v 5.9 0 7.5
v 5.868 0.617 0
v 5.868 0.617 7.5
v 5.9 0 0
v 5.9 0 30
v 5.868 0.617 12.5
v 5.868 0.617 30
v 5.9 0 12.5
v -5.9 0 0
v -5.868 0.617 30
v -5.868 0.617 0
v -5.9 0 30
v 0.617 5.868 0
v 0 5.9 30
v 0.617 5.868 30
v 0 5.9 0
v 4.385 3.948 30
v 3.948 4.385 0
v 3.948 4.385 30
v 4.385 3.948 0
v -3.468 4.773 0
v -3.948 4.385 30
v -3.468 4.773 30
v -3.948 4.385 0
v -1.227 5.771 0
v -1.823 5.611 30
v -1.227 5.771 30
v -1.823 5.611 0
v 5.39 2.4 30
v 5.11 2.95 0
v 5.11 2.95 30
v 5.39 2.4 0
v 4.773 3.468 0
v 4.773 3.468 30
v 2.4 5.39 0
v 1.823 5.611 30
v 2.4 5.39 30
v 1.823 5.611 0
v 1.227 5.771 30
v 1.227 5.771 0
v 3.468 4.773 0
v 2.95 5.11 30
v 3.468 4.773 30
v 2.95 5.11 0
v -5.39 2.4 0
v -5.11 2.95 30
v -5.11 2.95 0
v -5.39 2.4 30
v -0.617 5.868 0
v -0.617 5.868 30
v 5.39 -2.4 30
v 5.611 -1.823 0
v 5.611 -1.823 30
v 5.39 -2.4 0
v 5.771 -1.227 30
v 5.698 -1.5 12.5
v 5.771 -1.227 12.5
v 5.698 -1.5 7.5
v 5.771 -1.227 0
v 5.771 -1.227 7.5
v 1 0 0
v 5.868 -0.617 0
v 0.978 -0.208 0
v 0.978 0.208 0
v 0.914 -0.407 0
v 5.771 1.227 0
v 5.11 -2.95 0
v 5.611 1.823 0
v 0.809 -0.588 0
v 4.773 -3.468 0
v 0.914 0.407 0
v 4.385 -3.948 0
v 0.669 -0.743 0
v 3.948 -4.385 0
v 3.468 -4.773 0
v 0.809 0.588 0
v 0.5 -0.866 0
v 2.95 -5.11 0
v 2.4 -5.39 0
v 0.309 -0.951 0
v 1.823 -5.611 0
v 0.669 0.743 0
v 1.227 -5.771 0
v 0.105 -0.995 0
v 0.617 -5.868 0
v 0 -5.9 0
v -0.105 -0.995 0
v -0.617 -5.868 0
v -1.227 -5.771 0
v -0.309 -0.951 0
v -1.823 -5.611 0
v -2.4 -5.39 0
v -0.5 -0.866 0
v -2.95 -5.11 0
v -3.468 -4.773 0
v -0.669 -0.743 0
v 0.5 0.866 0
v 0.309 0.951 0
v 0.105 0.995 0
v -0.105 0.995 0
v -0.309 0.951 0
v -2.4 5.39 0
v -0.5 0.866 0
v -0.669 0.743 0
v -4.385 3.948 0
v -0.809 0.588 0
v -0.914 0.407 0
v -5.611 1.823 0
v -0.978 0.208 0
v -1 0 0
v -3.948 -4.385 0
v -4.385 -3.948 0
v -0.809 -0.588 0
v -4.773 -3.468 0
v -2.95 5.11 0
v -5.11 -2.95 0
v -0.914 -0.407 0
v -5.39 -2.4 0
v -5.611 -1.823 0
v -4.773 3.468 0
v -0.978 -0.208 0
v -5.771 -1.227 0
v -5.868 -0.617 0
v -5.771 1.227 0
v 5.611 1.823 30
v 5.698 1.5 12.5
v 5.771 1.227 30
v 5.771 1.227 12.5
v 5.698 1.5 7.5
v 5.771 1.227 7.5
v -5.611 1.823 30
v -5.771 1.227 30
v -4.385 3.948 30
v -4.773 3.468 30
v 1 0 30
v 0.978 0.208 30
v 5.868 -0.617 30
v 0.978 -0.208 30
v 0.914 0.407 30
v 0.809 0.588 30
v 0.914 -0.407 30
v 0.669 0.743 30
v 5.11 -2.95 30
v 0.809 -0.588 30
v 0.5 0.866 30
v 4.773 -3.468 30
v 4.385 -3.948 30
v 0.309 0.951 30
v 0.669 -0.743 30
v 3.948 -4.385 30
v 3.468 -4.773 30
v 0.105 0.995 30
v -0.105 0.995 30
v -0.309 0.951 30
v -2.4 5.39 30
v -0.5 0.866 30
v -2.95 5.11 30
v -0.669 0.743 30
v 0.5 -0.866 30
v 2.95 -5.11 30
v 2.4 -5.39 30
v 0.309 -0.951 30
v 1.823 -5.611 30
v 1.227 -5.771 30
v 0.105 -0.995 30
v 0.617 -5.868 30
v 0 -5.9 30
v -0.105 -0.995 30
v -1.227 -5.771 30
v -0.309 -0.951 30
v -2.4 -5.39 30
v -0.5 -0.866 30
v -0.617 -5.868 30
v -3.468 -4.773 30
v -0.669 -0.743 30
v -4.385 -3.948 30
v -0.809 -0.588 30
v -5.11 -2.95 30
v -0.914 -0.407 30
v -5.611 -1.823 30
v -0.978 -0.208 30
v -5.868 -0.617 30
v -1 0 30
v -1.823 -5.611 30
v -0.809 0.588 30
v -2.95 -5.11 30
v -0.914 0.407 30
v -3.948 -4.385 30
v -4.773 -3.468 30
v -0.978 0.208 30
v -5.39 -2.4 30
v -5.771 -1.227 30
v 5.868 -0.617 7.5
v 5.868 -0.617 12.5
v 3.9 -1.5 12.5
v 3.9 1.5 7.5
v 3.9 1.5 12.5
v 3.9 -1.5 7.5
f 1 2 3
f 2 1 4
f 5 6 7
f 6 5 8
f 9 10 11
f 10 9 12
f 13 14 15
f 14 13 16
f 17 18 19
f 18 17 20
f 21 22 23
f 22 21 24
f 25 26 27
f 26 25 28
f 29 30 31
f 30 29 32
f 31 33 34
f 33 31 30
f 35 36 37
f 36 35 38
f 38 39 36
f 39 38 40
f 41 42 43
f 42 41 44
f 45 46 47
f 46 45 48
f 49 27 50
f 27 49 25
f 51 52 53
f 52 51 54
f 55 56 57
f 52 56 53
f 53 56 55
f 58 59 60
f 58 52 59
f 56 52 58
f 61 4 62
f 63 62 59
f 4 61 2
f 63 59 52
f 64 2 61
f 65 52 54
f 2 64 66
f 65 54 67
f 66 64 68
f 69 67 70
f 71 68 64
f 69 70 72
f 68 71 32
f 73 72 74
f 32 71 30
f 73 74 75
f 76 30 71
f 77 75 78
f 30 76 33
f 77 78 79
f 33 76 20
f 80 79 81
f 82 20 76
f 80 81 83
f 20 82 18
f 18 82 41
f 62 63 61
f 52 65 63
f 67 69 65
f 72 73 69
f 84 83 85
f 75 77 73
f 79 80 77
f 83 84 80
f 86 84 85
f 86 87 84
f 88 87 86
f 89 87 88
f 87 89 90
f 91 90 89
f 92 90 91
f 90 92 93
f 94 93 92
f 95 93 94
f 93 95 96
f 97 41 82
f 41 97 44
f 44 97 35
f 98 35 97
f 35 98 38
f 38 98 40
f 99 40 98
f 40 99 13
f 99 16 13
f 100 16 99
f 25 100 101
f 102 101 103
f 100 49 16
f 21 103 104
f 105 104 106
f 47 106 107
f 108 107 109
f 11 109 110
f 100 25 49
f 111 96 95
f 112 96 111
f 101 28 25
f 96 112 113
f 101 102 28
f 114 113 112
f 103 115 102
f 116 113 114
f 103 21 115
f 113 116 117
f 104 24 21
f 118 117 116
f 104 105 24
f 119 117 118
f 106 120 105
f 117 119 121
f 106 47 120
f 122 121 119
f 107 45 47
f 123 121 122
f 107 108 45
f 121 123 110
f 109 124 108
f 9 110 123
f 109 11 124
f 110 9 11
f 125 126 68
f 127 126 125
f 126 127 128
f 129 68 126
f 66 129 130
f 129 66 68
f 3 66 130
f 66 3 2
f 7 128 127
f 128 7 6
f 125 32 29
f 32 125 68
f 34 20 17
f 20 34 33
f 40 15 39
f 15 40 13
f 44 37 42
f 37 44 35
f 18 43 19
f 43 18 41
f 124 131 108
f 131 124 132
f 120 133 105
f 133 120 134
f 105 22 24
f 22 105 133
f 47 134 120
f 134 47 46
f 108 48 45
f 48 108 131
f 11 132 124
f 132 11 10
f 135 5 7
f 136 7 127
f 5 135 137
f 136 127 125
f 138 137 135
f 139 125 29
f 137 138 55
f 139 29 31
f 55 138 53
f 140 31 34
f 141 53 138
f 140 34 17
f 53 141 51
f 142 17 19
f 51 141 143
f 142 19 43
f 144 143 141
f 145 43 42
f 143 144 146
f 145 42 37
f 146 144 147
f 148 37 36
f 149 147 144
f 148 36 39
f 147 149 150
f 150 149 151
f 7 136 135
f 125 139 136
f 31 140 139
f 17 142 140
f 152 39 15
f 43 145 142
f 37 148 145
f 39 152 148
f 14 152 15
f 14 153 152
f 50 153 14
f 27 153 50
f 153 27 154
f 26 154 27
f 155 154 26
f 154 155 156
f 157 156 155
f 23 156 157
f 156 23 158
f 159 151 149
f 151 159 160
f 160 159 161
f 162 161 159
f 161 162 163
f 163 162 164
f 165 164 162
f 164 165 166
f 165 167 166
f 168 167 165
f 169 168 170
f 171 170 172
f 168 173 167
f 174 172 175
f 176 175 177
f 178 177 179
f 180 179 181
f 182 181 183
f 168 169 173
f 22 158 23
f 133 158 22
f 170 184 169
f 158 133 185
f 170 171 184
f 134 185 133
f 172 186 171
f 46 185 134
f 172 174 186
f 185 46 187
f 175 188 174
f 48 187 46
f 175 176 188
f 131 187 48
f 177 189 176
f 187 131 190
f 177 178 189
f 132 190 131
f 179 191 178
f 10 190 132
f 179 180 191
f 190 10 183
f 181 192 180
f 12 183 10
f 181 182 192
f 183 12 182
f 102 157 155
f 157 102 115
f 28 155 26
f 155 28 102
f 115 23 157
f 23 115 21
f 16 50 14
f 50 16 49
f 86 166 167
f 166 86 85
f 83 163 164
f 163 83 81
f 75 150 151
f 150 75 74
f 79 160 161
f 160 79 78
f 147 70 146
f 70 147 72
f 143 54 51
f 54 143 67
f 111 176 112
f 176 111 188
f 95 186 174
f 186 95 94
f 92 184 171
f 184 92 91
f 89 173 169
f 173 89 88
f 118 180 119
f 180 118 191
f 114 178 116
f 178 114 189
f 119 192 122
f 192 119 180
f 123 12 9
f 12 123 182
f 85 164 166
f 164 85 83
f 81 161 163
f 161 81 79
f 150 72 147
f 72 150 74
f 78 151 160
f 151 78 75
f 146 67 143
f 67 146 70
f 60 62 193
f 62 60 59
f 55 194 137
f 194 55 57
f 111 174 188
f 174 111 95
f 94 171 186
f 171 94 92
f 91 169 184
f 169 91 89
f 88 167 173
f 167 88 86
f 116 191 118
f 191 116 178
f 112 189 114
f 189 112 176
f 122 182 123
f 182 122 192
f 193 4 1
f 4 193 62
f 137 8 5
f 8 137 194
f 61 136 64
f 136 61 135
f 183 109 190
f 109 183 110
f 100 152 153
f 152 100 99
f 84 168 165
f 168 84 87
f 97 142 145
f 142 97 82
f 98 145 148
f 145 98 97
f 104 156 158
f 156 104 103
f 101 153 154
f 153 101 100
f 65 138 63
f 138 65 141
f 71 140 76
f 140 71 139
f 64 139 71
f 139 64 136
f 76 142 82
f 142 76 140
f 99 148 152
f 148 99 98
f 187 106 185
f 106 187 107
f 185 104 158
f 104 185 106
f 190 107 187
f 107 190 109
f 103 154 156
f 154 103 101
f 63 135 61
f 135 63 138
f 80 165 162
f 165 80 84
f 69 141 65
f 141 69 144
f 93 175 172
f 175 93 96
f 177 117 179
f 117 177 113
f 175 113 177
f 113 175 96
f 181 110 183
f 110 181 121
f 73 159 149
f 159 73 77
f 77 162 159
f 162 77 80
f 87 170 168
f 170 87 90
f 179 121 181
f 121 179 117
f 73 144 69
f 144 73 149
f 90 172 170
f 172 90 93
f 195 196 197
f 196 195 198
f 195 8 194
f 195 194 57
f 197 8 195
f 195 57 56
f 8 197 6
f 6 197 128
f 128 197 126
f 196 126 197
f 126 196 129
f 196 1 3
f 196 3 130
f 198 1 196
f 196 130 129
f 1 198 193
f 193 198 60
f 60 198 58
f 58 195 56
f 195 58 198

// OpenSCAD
// ============================================================
// Part 5: Needle Holder Adapter
// Remote Surgical Training Arm — Jaycar Servo Edition
// ============================================================
// Print: upright (standing on end), no supports, ~15 min, ~4g
// PRINT 2-3 SPARES — these are small and easily lost
// ============================================================
// Cylindrical insert that friction-fits into the end-effector's
// 12mm bore. Has a 2mm central bore for 18G blunt practice needle.
// Set-screw flat aligns with the end-effector's M3 set-screw hole.
// ============================================================

// === DIMENSIONS ===
outer_dia       = 11.8;   // prints slightly under 12mm for friction fit into 12.2mm bore
adapter_length  = 30;     // total length
bore_dia        = 2.0;    // central bore for 18G needle (1.27mm OD — loose fit)

// Set-screw flat: a flat recess so the M3 grub screw has a surface to grip
flat_width      = 3.0;    // width of the flat
flat_depth      = 2.0;    // how deep the flat cuts into the cylinder
flat_z          = 10;     // distance from top of adapter to centre of flat
flat_length     = 5;      // length of flat along cylinder axis

// === MODEL ===
module needle_adapter() {
    difference() {
        // Outer cylinder
        cylinder(h = adapter_length, d = outer_dia, $fn = 60);
        
        // Central bore (full length)
        translate([0, 0, -1])
            cylinder(h = adapter_length + 2, d = bore_dia, $fn = 30);
        
        // Set-screw flat (cut a flat face into the side)
        translate([
            outer_dia / 2 - flat_depth,
            -flat_width / 2,
            flat_z - flat_length / 2
        ])
            cube([flat_depth + 1, flat_width, flat_length]);
    }
}

needle_adapter();
